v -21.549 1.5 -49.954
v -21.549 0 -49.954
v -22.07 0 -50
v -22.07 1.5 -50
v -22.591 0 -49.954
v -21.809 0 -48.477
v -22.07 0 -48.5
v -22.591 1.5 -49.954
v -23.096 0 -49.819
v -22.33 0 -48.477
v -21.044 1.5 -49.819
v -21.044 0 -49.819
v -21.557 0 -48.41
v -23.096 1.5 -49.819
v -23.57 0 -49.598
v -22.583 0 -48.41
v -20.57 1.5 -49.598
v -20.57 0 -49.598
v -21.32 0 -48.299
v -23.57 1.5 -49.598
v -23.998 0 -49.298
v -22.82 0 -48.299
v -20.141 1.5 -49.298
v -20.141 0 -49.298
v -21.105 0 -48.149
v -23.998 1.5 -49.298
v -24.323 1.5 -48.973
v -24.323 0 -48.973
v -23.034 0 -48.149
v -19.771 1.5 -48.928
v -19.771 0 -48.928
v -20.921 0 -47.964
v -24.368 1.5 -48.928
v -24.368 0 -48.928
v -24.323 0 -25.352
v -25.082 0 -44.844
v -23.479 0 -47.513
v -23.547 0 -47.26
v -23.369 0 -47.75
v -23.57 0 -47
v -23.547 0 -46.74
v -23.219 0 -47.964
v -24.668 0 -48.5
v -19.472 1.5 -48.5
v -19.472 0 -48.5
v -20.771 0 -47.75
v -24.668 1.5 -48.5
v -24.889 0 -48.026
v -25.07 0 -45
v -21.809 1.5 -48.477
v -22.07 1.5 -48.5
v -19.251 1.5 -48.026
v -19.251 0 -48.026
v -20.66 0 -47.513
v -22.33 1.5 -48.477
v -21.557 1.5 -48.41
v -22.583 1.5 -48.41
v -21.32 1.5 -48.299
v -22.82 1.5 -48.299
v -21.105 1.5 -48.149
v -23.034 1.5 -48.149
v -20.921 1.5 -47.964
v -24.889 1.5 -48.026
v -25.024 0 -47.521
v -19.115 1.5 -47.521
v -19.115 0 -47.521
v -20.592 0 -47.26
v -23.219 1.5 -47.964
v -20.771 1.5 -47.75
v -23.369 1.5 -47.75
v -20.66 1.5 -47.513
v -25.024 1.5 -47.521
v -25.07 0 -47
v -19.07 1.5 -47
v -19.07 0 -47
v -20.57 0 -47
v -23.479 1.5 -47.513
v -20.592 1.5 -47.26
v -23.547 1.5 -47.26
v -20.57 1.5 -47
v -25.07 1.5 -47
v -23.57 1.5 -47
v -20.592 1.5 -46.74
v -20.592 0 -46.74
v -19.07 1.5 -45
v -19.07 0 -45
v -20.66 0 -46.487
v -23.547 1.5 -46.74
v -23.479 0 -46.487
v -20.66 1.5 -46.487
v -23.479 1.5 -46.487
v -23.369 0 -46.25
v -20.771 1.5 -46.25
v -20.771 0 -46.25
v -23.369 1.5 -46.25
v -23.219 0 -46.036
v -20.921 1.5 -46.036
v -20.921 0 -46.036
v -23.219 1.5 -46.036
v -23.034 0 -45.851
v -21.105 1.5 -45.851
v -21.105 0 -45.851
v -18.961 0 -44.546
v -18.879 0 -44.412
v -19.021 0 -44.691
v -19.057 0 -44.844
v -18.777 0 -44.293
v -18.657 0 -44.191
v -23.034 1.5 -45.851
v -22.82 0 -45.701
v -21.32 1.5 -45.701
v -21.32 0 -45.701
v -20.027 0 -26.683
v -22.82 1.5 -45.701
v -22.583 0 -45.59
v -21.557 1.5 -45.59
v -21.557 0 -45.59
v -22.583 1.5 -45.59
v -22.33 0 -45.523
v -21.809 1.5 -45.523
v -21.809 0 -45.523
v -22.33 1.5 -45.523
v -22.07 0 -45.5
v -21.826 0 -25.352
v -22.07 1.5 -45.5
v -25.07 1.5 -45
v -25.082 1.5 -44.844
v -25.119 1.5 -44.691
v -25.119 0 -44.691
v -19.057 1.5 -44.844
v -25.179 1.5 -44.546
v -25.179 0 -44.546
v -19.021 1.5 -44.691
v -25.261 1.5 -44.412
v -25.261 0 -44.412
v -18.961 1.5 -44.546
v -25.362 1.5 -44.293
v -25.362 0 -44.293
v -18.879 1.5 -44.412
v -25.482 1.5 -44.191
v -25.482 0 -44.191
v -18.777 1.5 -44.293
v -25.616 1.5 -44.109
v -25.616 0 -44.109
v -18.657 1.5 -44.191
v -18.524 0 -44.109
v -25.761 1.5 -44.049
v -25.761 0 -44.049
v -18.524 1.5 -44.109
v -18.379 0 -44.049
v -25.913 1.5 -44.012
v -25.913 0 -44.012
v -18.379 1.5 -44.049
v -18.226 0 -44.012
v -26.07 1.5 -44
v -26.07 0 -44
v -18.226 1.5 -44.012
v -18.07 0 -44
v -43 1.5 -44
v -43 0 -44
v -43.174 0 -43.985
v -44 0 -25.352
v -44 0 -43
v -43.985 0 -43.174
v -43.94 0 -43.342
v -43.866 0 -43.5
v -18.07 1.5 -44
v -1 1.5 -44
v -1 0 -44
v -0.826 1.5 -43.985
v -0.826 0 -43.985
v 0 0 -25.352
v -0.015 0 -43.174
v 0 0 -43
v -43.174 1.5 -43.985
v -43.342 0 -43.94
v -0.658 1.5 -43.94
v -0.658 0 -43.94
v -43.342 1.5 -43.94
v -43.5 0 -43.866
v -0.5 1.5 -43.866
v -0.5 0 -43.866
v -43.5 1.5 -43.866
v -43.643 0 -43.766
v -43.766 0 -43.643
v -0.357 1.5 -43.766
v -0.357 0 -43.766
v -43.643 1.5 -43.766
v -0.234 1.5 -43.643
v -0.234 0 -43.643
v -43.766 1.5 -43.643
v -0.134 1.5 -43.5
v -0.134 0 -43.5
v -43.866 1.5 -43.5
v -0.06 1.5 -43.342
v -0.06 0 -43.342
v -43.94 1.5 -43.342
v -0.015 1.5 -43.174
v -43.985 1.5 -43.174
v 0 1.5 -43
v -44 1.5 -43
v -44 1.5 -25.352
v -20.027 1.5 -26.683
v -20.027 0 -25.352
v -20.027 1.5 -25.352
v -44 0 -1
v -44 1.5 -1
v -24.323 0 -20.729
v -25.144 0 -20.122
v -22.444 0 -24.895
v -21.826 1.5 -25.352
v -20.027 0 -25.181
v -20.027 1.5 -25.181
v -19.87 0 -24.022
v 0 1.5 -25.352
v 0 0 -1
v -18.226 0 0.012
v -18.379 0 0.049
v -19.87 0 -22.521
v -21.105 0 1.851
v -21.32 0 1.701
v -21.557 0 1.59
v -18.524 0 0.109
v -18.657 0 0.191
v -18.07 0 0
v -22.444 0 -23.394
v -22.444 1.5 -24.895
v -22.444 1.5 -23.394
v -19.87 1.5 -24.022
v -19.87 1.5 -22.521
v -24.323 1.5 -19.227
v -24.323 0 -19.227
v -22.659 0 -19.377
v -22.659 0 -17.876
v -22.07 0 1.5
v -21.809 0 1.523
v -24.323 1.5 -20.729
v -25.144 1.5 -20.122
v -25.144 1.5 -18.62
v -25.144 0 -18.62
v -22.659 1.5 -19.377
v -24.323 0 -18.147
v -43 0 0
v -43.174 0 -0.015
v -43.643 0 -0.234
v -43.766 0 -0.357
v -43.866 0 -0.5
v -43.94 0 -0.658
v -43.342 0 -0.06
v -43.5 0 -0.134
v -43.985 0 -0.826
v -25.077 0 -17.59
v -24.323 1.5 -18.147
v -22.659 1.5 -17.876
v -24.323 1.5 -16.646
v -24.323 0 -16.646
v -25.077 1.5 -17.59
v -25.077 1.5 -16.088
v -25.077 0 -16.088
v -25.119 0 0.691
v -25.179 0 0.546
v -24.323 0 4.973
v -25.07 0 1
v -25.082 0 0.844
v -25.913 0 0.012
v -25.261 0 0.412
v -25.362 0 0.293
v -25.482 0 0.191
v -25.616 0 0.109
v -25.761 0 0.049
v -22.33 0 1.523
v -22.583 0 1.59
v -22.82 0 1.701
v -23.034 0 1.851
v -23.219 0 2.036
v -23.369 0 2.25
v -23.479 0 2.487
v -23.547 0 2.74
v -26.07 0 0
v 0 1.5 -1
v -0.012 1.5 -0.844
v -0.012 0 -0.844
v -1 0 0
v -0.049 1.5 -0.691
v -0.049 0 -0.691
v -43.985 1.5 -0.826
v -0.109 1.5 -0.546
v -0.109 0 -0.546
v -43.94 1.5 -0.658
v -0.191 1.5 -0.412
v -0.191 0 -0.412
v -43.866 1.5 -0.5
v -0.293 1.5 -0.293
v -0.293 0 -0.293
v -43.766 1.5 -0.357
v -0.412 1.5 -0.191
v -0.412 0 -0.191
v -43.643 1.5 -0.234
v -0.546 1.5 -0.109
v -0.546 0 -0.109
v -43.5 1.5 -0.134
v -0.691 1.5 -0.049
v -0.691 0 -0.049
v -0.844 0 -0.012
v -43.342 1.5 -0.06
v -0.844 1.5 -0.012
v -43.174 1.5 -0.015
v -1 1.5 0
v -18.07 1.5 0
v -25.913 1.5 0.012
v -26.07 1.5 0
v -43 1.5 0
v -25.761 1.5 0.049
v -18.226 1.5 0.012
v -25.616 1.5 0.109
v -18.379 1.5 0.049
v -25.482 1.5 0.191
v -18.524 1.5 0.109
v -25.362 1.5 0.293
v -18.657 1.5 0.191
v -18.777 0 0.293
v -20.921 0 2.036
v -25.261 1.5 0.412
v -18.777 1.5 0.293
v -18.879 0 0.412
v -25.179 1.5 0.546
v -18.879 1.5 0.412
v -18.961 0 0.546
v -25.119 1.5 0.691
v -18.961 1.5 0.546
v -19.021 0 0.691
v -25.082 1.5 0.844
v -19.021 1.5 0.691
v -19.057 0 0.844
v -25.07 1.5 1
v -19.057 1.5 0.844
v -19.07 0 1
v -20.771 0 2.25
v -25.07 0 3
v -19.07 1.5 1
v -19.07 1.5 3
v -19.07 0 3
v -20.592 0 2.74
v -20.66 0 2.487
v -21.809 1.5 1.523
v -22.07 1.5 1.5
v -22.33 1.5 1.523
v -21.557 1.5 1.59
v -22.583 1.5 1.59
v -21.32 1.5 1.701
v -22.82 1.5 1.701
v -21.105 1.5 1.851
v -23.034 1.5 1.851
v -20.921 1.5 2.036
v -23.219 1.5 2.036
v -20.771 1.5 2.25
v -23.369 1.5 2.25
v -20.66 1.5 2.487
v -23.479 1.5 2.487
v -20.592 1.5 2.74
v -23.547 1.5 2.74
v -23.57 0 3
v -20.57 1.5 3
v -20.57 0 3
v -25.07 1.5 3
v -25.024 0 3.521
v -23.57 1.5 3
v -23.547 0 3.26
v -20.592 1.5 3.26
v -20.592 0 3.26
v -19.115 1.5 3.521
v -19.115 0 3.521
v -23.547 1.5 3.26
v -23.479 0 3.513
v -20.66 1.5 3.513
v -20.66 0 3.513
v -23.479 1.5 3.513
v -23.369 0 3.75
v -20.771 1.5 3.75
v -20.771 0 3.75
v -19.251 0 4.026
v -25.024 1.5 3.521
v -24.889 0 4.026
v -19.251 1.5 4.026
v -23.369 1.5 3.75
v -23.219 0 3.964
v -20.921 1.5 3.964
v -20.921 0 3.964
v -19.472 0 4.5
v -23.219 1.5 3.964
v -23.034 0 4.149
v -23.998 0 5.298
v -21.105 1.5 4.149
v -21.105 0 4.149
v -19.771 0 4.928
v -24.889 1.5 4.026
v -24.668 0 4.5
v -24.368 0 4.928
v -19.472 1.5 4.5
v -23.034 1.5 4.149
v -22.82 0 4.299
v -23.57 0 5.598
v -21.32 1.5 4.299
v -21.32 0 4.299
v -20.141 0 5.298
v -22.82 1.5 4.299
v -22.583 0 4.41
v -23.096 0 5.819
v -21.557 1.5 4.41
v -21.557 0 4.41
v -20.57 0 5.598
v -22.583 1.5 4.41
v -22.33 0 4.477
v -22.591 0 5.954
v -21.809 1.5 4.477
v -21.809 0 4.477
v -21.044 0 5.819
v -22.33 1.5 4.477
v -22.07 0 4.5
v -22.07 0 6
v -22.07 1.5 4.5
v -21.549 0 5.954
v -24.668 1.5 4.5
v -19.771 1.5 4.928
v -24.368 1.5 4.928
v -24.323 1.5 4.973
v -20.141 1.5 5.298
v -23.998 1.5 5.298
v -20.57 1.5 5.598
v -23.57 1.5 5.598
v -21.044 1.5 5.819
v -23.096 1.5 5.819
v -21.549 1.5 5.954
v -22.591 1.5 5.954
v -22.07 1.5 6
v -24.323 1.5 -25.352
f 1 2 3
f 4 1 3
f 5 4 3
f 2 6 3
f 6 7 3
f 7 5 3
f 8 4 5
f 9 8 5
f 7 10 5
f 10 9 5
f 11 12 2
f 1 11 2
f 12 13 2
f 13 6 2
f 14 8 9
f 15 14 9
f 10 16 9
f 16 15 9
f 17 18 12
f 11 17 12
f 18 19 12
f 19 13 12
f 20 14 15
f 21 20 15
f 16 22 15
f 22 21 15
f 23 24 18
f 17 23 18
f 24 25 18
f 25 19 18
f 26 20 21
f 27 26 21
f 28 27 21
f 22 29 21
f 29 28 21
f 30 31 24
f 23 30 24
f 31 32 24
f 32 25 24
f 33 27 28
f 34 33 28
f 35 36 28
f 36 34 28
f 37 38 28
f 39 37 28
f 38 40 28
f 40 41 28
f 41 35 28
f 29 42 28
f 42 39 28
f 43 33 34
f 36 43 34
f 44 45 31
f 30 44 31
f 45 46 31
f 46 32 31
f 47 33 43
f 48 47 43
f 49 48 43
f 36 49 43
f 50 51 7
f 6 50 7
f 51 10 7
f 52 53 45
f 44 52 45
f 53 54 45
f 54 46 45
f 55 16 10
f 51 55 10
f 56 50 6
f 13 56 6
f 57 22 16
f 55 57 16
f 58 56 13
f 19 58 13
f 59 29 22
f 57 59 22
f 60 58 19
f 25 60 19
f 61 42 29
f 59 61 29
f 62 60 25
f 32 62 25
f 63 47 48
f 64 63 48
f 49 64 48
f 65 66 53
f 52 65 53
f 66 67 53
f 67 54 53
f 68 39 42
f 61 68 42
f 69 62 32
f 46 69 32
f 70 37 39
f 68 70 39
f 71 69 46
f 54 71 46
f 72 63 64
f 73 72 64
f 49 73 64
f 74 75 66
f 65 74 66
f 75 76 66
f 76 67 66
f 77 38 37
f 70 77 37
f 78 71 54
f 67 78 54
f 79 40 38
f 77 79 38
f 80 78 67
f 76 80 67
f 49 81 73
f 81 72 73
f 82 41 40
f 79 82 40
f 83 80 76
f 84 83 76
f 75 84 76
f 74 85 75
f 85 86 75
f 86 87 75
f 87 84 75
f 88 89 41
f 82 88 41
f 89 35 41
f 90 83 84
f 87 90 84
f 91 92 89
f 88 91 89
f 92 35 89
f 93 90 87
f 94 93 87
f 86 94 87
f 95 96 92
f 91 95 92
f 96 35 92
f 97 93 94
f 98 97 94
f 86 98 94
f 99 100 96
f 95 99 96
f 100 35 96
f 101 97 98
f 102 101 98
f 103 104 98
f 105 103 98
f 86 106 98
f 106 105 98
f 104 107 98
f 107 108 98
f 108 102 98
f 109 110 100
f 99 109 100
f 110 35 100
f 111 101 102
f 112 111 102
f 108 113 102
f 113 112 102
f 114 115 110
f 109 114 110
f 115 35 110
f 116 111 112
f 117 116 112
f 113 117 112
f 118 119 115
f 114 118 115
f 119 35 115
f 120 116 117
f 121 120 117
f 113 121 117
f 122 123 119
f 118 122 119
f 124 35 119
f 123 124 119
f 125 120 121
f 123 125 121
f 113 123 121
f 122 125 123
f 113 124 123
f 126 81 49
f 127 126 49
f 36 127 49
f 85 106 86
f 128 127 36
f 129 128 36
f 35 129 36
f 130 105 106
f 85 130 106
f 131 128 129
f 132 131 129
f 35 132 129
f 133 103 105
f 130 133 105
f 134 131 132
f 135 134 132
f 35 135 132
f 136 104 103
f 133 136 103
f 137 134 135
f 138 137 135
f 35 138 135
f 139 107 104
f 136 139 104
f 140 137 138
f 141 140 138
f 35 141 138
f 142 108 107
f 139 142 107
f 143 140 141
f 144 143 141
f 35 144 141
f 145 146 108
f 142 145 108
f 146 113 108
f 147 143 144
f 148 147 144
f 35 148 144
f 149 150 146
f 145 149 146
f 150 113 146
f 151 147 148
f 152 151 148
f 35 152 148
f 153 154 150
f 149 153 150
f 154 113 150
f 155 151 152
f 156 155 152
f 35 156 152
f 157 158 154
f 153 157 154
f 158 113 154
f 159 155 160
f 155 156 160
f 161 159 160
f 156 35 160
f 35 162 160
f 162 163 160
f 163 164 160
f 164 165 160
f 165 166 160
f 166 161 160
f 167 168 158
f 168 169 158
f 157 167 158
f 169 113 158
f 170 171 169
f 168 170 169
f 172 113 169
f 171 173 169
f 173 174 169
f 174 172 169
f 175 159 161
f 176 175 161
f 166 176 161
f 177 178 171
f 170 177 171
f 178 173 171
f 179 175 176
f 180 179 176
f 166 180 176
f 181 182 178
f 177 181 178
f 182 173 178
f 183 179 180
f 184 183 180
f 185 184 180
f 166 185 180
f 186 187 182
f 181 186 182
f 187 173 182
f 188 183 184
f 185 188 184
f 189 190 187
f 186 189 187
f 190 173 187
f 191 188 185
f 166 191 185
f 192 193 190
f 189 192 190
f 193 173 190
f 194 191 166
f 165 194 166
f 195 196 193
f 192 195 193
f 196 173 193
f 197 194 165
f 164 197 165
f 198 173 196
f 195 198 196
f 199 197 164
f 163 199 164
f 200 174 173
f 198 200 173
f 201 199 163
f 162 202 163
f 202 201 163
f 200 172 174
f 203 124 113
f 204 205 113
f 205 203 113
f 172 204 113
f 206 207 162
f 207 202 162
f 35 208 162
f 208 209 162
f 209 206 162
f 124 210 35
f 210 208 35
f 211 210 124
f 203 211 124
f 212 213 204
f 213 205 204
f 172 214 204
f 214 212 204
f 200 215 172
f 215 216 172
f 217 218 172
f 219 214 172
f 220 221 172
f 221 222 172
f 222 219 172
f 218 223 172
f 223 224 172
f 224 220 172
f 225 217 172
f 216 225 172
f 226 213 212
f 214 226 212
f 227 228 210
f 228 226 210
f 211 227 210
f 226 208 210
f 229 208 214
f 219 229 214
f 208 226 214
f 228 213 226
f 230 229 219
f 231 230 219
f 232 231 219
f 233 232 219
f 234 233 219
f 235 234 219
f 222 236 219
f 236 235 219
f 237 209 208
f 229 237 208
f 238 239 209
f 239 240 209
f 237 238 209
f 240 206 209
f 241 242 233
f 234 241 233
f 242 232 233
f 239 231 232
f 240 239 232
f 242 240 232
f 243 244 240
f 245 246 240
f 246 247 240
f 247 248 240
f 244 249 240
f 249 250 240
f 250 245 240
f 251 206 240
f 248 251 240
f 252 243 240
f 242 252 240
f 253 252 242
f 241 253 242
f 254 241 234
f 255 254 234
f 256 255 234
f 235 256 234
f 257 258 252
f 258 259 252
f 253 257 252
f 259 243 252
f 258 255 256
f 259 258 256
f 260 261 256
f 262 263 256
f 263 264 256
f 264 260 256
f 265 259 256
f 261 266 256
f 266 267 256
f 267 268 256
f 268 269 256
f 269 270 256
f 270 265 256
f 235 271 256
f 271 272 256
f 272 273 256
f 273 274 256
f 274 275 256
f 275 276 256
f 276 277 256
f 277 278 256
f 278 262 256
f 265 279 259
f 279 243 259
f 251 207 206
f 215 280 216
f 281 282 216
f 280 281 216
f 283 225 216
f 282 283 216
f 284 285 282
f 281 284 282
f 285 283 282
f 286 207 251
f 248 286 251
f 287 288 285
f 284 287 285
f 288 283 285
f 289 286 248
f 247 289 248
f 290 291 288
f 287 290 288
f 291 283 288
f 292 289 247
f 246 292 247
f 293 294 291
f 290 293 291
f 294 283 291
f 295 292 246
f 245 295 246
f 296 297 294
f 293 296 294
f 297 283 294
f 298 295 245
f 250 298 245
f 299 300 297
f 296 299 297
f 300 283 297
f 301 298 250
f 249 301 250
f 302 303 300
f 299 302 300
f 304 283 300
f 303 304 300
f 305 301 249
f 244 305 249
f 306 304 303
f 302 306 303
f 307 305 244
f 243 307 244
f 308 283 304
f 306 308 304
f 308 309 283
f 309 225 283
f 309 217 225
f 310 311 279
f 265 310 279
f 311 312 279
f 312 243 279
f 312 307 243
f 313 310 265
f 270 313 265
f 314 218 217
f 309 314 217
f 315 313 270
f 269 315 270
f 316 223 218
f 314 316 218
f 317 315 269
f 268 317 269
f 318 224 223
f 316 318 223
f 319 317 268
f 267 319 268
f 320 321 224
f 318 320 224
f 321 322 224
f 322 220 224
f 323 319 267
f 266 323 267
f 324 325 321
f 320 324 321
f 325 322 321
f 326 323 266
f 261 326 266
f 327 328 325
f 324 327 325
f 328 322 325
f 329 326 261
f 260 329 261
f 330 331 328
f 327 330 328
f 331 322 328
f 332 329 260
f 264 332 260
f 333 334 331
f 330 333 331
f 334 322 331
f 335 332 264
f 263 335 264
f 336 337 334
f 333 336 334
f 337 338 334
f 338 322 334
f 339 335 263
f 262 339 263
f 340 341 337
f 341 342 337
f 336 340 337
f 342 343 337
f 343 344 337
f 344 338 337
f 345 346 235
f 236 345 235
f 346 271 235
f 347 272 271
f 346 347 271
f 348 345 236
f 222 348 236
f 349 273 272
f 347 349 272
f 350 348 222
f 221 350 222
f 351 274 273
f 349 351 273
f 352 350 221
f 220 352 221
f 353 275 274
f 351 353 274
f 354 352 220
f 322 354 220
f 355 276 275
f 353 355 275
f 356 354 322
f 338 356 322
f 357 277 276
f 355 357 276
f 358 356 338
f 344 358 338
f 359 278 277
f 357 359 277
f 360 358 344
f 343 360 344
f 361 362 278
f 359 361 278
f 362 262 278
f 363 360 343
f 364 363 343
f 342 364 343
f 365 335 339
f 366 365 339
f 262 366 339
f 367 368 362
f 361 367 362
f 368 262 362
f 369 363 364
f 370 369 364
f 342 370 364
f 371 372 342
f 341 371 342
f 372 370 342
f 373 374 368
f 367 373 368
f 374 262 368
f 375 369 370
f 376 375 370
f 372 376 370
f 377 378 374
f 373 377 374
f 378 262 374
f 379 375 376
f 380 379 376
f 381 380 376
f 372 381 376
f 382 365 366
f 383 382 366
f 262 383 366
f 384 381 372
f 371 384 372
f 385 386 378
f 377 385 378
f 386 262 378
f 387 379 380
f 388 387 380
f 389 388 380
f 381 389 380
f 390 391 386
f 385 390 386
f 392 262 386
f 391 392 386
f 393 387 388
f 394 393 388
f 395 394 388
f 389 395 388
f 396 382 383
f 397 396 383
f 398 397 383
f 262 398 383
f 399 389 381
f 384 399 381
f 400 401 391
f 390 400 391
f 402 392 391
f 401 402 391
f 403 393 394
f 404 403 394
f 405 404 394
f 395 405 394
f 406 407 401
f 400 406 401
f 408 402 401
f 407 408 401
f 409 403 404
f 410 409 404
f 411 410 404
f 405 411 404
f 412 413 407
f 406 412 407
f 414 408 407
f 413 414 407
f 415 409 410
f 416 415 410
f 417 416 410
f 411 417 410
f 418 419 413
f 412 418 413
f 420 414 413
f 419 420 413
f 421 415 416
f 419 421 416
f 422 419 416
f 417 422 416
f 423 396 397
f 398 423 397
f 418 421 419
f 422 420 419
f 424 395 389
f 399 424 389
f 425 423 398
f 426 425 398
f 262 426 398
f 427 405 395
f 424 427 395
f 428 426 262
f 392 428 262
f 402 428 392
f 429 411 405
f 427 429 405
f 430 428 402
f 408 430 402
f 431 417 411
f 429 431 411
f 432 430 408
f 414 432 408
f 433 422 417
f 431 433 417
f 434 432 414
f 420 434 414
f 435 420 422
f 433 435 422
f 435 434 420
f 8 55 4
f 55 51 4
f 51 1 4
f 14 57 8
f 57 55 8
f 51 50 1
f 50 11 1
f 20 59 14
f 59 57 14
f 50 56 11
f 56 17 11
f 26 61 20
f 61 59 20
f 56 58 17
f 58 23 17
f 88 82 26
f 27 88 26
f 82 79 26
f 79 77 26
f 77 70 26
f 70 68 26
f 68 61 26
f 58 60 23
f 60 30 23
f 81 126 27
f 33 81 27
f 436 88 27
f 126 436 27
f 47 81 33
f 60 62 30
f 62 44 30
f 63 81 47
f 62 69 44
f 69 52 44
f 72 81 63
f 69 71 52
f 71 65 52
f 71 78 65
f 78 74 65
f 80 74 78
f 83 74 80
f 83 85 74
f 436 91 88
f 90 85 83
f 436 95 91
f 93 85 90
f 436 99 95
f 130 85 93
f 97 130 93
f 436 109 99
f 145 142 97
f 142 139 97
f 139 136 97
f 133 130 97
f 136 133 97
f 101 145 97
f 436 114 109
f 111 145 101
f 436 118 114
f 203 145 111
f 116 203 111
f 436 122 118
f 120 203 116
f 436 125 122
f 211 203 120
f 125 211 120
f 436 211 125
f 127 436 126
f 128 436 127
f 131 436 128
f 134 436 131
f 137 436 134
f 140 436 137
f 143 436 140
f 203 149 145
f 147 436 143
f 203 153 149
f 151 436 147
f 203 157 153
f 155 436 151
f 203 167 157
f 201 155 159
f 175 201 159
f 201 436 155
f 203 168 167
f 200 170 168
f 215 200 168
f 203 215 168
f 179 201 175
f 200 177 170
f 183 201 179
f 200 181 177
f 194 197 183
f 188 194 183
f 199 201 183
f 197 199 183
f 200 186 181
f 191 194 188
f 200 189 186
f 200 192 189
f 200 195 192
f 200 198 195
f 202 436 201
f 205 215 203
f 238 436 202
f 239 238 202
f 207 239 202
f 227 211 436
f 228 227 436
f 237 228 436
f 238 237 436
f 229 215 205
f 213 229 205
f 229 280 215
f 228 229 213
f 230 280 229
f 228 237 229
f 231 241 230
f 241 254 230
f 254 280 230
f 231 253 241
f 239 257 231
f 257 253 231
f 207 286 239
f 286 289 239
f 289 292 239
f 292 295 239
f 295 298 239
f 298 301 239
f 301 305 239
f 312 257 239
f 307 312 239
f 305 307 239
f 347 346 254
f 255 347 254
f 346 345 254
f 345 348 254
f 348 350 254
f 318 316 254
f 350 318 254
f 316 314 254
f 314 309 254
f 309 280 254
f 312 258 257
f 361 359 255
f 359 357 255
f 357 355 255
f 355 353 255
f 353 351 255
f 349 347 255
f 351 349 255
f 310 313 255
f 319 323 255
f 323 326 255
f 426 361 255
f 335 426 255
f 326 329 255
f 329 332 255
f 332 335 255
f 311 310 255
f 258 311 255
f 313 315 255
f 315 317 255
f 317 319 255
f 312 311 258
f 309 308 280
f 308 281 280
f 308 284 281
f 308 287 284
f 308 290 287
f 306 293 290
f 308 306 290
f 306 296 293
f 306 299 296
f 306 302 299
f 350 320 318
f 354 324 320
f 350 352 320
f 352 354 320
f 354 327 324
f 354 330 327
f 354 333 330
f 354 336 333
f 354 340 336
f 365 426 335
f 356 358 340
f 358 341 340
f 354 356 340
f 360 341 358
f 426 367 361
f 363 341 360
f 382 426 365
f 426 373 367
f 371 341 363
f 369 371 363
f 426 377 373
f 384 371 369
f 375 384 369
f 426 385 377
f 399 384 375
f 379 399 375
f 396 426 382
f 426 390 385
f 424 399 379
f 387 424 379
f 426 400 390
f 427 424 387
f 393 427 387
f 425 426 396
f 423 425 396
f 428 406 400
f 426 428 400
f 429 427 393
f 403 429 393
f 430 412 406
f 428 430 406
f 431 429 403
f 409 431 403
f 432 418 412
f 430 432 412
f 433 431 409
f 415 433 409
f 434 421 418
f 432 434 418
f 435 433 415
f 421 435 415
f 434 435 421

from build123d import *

# Parameters (mm, degrees)
SKETCH_1_R      = 1.5
EXTRUDE_1_DEPTH = 1.5


with BuildPart() as part:
    # 草图1 → 凸台-拉伸1 (new body)
    with BuildSketch(Plane(origin=(0, 0, 0), x_dir=(1, 0, 0), z_dir=(0, 1, 0))):
        with BuildLine():
            Line((-1, 0), (-18.069602783, 0))
            ThreePointArc((-18.069602783, 0), (-18.776709565, -0.292893219), (-19.069602783, -1))
            Line((-19.069602783, -1), (-19.069602783, -3))
            ThreePointArc((-19.069602783, -3), (-22.069602783, -6), (-25.069602783, -3))
            Line((-25.069602783, -3), (-25.069602783, -1))
            ThreePointArc((-25.069602783, -1), (-25.362496002, -0.292893219), (-26.069602783, 0))
            Line((-26.069602783, 0), (-43, 0))
            ThreePointArc((-43, 0), (-43.707106781, 0.292893219), (-44, 1))
            Line((-44, 1), (-44, 43))
            ThreePointArc((-44, 43), (-43.707106781, 43.707106781), (-43, 44))
            Line((-43, 44), (-26.069602783, 44))
            ThreePointArc((-26.069602783, 44), (-25.362496002, 44.292893219), (-25.069602783, 45))
            Line((-25.069602783, 45), (-25.069602783, 47))
            ThreePointArc((-25.069602783, 47), (-22.069602783, 50), (-19.069602783, 47))
            Line((-19.069602783, 47), (-19.069602783, 45))
            ThreePointArc((-19.069602783, 45), (-18.776709565, 44.292893219), (-18.069602783, 44))
            Line((-18.069602783, 44), (-1, 44))
            ThreePointArc((-1, 44), (-0.292893219, 43.707106781), (0, 43))
            Line((0, 43), (0, 1))
            ThreePointArc((0, 1), (-0.292893219, 0.292893219), (-1, 0))
        make_face()
        with Locations((-22.069602783, -3)):
            Circle(SKETCH_1_R, mode=Mode.SUBTRACT)
        with Locations((-22.069602783, 47)):
            Circle(SKETCH_1_R, mode=Mode.SUBTRACT)
        Polygon((-19.869912149, 24.021868684), (-19.869912149, 22.52053711), (-25.144061861, 18.620495369), (-25.144061861, 20.121826943), align=None, mode=Mode.SUBTRACT)
        Polygon((-20.026597006, 26.682534422), (-20.026597006, 25.181202847), (-22.444035318, 23.393595206), (-22.444035318, 24.894926781), align=None, mode=Mode.SUBTRACT)
        Polygon((-22.65940243, 19.377411479), (-22.65940243, 17.876079904), (-25.076840742, 16.088472263), (-25.076840742, 17.589803838), align=None, mode=Mode.SUBTRACT)
    extrude(amount=EXTRUDE_1_DEPTH)


solid = part.part
